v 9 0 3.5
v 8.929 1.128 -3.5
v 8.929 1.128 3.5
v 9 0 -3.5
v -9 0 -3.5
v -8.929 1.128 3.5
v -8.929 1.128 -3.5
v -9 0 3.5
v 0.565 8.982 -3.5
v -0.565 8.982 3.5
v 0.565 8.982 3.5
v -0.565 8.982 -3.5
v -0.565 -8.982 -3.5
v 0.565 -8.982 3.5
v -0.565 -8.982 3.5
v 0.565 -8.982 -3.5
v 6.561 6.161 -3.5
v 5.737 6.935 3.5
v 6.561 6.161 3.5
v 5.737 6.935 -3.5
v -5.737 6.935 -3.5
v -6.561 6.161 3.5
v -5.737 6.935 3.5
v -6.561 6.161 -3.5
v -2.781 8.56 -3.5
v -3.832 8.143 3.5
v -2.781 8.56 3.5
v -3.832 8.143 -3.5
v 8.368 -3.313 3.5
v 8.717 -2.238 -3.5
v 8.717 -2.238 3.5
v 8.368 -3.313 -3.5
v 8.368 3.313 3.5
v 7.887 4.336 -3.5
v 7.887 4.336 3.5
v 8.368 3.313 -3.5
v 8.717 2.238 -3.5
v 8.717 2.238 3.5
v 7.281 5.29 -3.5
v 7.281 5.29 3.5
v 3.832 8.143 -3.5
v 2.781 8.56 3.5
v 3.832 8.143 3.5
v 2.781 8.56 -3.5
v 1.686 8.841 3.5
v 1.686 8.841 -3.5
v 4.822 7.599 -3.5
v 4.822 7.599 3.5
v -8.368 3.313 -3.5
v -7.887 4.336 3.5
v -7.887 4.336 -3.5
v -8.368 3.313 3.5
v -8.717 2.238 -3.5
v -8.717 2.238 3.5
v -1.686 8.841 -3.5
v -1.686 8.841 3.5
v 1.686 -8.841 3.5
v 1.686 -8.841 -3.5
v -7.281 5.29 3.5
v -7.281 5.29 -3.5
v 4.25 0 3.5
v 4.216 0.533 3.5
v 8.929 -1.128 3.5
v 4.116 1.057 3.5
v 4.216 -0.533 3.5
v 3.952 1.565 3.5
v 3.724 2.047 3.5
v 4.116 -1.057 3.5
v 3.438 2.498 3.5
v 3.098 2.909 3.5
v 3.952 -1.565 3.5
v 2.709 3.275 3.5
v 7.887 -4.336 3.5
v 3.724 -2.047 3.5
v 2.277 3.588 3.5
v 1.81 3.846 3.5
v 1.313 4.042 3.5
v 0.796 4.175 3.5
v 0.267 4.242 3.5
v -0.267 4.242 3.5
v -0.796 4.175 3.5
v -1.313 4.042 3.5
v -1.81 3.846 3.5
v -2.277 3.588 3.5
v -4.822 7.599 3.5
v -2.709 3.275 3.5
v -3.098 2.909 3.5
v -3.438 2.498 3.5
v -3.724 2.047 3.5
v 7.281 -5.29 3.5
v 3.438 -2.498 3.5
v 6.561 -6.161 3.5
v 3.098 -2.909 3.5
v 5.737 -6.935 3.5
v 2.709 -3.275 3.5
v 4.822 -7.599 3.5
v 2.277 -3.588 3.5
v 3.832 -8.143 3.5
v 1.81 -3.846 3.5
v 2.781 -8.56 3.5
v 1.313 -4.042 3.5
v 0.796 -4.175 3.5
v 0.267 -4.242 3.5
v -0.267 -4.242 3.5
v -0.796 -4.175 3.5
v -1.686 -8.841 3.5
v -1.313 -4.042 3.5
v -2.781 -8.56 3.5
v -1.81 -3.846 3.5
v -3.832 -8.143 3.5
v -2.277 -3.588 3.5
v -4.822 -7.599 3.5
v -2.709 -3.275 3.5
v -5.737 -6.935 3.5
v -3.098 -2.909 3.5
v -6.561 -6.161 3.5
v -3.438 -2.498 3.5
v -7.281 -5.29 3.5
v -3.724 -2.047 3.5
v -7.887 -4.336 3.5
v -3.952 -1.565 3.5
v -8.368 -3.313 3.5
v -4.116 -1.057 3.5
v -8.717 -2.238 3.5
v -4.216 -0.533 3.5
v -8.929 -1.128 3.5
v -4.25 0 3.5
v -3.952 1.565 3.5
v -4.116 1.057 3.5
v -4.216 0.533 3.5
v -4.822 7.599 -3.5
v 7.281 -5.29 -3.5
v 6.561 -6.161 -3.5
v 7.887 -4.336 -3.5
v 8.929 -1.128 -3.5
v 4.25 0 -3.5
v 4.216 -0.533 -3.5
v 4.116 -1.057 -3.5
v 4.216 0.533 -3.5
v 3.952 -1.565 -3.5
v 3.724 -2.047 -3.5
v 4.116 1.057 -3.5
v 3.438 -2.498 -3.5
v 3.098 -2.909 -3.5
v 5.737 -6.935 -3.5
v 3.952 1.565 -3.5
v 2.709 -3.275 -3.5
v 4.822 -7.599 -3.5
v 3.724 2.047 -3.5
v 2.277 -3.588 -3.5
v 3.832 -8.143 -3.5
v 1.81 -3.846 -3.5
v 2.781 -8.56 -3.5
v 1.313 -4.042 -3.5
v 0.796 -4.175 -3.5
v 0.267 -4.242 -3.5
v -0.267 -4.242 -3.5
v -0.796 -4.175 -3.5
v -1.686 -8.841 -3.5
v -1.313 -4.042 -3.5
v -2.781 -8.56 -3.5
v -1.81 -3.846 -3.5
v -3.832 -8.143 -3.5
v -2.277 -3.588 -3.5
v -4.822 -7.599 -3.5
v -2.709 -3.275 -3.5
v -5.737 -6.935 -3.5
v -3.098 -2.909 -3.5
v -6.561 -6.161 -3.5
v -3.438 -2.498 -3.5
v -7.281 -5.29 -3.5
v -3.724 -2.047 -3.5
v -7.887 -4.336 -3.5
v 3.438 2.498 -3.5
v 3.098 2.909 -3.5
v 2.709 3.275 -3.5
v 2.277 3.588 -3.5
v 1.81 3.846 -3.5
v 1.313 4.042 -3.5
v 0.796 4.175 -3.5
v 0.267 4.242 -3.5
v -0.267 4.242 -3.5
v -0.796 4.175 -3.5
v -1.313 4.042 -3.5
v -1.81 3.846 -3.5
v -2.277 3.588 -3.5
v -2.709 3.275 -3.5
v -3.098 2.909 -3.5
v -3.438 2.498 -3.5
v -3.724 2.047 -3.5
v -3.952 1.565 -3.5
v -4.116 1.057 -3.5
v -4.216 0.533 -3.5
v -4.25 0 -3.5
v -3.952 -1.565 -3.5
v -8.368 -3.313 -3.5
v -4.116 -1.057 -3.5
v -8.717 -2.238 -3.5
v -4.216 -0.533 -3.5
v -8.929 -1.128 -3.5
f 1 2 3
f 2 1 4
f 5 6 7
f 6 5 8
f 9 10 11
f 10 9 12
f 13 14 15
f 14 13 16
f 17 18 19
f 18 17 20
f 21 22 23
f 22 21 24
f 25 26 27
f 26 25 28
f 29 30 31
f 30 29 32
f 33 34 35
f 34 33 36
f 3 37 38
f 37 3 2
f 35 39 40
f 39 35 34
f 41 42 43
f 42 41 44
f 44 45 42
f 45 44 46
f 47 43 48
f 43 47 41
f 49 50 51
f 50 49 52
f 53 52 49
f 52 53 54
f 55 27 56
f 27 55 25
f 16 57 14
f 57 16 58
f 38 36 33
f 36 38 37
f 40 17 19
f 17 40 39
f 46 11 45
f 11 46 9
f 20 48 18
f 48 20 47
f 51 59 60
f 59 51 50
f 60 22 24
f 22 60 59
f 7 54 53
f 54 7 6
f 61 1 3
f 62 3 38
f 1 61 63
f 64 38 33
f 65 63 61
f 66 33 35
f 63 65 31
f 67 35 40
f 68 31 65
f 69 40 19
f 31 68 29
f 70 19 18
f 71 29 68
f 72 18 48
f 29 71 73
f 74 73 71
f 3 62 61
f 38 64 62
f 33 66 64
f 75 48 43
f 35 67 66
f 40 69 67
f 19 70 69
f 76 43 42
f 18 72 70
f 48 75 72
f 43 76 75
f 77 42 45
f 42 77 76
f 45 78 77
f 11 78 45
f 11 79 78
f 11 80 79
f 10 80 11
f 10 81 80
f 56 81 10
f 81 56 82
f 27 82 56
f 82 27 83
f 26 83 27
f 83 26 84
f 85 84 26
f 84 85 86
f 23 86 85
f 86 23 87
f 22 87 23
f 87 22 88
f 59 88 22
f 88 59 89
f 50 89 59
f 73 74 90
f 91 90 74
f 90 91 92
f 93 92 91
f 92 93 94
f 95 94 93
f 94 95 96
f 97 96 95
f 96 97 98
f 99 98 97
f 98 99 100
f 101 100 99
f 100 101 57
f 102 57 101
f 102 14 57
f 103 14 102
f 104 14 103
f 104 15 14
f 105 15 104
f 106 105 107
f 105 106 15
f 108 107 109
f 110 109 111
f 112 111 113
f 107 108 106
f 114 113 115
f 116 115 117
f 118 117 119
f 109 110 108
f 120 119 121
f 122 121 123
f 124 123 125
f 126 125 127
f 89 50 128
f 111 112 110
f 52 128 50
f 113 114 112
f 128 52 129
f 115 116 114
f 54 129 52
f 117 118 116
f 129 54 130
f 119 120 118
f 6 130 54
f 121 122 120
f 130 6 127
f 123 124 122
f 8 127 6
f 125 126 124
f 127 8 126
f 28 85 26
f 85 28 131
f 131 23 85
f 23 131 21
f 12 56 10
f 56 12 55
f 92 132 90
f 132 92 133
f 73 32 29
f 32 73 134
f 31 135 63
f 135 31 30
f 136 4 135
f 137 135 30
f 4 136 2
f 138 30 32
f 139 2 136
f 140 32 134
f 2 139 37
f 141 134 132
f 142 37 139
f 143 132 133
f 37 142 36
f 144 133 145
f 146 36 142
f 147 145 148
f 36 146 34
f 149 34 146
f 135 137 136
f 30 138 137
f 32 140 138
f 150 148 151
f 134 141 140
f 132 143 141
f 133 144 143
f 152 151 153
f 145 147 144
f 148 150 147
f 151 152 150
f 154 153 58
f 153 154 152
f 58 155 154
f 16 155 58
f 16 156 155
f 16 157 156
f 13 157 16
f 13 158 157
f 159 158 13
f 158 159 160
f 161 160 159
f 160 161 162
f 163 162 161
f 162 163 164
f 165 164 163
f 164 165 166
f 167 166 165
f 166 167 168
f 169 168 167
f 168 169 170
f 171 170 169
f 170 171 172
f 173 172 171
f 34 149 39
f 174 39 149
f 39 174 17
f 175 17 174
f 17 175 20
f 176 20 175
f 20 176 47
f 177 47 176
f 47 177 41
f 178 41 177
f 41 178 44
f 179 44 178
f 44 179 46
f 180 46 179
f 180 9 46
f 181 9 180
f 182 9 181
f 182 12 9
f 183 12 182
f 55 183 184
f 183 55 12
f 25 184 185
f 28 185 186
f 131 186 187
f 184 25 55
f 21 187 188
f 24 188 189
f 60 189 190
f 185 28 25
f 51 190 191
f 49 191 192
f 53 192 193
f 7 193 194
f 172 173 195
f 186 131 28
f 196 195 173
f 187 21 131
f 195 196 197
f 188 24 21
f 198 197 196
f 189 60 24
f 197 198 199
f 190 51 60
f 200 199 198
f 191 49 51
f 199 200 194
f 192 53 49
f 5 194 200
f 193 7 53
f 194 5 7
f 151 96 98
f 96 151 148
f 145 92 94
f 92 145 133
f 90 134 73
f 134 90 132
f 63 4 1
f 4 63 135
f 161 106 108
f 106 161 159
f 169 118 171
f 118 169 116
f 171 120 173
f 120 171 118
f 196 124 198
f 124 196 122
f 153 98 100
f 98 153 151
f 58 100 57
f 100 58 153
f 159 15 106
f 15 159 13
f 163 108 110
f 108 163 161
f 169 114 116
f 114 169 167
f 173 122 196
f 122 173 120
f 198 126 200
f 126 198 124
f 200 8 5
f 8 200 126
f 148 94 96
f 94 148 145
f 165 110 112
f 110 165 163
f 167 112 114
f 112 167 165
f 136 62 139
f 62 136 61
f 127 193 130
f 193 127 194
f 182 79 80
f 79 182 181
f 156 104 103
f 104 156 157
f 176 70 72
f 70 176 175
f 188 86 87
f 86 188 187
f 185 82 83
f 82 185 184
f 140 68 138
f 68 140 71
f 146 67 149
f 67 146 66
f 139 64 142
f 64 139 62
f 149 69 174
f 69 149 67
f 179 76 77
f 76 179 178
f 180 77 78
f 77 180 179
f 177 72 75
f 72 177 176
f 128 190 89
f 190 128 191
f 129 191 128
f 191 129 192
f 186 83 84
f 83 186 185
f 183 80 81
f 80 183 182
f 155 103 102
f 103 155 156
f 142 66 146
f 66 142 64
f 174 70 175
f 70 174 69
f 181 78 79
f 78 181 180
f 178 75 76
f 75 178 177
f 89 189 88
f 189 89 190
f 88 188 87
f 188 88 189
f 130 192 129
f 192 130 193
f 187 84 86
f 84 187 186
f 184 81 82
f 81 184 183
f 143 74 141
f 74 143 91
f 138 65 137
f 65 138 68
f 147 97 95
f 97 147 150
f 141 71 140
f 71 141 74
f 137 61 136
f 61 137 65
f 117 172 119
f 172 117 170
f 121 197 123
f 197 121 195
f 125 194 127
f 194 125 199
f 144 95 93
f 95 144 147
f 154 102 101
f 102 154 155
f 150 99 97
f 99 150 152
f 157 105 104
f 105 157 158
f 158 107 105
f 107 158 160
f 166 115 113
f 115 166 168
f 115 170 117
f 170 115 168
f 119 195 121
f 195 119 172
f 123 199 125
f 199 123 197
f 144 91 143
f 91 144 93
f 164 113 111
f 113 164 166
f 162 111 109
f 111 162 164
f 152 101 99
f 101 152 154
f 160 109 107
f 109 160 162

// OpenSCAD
$fn = 50;


difference() {
	union() {
		translate(v = [0, 0, -3.5000000000]) {
			cylinder(h = 7, r = 9.0000000000);
		}
	}
	union() {
		translate(v = [0, 0, -100.0000000000]) {
			cylinder(h = 200, r = 4.2500000000);
		}
	}
}
